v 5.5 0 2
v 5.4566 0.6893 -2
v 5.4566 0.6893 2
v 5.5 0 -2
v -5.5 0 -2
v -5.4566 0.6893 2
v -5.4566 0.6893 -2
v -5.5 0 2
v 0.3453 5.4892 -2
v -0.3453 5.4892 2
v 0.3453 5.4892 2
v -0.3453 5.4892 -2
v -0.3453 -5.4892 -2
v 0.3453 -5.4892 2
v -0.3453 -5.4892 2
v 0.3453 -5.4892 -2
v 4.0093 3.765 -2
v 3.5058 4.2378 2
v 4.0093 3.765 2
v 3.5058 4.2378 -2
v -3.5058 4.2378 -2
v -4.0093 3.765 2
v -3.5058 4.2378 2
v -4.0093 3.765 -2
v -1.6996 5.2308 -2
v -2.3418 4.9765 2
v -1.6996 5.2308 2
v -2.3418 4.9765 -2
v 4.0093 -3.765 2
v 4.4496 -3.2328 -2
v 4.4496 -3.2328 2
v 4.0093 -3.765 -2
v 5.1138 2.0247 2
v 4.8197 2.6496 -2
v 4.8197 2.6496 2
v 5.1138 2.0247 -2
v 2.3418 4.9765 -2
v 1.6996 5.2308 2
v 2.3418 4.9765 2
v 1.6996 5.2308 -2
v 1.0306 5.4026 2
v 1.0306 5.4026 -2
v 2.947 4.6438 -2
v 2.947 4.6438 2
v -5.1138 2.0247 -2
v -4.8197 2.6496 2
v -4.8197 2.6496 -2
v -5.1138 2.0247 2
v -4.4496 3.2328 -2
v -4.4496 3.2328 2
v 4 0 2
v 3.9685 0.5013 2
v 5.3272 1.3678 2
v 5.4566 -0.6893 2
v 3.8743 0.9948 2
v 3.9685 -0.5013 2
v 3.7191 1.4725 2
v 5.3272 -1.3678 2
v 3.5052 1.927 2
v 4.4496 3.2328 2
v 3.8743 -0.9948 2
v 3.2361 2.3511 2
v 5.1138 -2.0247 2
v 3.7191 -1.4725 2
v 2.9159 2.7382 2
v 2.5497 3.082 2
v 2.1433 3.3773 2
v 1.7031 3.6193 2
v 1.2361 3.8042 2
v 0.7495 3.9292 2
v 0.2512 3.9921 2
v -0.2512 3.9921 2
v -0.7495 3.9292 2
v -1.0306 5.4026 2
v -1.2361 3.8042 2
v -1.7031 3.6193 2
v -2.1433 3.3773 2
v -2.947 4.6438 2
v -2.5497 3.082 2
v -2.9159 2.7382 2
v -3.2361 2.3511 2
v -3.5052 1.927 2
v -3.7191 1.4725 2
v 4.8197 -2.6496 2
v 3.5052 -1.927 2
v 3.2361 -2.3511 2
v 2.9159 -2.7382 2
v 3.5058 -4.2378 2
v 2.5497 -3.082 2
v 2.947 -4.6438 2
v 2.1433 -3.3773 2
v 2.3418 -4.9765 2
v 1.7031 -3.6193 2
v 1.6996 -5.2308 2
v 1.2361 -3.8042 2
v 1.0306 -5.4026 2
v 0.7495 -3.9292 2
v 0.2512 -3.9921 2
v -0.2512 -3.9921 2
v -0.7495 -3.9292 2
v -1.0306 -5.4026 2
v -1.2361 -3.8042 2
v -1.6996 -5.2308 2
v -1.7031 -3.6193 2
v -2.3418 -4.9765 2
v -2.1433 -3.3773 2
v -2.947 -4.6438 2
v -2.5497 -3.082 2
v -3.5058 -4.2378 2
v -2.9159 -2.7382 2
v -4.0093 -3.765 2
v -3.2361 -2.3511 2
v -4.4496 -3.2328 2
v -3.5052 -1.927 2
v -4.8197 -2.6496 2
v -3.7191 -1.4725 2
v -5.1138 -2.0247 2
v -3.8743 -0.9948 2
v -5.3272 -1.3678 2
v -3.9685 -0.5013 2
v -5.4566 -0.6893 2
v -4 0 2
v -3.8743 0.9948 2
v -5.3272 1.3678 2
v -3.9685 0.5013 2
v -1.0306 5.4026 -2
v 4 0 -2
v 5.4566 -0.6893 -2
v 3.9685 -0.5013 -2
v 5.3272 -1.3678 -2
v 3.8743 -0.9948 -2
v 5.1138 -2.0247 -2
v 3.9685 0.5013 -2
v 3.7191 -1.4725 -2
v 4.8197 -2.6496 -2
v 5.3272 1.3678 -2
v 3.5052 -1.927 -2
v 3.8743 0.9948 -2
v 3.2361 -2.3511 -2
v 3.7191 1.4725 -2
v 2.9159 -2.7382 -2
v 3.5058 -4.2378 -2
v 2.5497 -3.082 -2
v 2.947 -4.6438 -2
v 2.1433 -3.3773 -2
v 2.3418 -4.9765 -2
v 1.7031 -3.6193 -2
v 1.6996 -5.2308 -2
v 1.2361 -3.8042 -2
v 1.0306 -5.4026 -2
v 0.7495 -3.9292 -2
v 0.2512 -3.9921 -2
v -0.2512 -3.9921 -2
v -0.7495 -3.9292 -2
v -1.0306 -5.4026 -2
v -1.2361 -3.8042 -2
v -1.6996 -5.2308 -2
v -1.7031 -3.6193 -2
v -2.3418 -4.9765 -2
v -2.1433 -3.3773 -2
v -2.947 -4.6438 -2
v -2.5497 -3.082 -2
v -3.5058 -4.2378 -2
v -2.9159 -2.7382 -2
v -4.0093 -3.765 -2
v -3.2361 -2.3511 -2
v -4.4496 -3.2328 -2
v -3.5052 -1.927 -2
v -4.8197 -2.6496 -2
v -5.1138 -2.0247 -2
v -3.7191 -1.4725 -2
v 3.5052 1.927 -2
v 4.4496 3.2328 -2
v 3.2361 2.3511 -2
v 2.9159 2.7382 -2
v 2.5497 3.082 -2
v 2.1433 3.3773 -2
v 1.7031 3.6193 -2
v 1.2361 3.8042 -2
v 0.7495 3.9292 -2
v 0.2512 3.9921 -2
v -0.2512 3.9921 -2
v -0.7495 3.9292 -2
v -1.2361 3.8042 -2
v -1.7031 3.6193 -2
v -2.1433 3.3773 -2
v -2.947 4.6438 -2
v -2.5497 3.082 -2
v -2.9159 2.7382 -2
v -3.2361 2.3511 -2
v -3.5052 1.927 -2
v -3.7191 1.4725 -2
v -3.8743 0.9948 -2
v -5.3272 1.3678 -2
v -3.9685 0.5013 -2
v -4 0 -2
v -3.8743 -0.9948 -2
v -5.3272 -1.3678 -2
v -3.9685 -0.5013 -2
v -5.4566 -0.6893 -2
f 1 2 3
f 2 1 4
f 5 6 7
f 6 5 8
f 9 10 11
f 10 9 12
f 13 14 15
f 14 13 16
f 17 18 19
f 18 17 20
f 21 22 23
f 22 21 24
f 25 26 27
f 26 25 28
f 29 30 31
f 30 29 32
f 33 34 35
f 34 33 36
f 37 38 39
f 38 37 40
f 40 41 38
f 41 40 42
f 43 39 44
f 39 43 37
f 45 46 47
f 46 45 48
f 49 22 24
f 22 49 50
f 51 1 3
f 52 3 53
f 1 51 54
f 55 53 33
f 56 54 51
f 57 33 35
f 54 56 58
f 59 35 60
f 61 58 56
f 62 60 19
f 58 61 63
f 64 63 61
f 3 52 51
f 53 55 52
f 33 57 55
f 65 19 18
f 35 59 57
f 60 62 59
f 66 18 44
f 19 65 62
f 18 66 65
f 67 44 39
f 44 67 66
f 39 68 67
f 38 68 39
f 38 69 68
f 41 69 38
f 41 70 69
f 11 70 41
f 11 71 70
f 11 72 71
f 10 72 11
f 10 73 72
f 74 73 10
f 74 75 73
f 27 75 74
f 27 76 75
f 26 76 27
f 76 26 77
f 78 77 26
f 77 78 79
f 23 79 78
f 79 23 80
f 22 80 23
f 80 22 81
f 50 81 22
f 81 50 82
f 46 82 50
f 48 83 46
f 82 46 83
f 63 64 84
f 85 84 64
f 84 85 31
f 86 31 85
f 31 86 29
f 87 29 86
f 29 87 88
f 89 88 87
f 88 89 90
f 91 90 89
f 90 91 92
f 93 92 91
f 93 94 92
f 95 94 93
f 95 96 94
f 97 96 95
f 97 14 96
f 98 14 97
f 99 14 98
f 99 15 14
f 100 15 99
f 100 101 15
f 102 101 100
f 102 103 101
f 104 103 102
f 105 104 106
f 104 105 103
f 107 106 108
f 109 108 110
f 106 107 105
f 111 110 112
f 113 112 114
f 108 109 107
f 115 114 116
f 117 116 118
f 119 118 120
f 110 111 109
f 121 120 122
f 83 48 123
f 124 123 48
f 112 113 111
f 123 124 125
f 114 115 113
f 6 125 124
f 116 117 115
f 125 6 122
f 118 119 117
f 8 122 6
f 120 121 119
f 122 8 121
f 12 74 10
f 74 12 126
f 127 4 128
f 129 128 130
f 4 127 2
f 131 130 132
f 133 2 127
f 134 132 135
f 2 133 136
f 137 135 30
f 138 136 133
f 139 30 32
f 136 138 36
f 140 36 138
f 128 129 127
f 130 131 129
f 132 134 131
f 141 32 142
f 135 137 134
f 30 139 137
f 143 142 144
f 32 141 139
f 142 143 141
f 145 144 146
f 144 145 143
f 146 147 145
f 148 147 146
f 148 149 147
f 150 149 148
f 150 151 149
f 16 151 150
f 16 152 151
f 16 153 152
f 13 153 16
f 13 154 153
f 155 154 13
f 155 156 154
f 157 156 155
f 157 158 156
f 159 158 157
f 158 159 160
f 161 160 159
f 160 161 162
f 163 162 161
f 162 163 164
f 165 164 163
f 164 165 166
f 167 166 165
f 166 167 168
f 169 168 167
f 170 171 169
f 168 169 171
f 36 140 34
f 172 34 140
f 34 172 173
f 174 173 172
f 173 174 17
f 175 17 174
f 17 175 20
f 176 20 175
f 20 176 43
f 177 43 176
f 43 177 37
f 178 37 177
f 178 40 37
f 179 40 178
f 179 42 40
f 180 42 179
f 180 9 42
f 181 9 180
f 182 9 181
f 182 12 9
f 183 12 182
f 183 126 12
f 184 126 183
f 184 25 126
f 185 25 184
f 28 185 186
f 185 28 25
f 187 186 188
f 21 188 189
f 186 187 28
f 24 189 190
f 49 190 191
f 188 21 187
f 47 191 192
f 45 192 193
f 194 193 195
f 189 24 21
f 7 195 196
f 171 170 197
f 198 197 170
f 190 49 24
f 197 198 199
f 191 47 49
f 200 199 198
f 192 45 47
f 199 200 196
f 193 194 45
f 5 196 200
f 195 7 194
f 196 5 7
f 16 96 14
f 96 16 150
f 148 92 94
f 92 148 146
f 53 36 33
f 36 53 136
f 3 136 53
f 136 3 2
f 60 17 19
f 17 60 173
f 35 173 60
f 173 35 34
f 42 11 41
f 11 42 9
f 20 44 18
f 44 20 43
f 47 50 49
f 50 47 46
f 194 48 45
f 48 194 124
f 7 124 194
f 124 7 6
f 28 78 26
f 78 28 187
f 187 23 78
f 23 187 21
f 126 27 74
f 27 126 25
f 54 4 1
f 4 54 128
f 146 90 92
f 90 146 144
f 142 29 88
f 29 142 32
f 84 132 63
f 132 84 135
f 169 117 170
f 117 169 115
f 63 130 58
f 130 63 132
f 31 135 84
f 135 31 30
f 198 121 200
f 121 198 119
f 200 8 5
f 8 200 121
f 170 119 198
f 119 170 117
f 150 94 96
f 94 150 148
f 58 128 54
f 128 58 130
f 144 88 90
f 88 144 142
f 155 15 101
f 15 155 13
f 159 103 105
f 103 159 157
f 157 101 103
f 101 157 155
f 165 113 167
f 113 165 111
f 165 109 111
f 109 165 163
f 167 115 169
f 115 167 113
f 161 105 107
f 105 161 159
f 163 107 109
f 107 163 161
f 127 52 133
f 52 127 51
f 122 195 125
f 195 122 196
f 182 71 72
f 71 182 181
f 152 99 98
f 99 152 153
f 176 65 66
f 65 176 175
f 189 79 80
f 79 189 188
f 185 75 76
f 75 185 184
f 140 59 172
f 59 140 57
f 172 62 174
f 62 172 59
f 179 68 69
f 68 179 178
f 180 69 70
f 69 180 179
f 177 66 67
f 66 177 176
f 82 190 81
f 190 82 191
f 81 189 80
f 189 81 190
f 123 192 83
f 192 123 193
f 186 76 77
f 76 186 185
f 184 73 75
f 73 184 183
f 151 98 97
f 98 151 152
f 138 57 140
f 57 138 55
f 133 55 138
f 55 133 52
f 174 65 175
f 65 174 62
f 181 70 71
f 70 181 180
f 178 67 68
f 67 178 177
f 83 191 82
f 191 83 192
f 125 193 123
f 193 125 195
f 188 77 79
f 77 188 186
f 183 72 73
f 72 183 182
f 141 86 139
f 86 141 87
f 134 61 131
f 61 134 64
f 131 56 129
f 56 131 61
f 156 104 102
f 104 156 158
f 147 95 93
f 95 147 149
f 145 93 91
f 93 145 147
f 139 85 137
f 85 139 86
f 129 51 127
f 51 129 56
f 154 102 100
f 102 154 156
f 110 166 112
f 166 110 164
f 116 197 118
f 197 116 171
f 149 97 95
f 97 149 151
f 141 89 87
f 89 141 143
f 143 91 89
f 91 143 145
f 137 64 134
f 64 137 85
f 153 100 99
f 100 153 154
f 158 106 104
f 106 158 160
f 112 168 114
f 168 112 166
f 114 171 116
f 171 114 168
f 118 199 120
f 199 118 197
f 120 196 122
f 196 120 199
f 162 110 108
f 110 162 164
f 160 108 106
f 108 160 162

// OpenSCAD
$fn = 50;


difference() {
	union() {
		translate(v = [0, 0, -2.0000000000]) {
			cylinder(h = 4, r = 5.5000000000);
		}
	}
	union() {
		translate(v = [0, 0, -100.0000000000]) {
			cylinder(h = 200, r = 4);
		}
	}
}
